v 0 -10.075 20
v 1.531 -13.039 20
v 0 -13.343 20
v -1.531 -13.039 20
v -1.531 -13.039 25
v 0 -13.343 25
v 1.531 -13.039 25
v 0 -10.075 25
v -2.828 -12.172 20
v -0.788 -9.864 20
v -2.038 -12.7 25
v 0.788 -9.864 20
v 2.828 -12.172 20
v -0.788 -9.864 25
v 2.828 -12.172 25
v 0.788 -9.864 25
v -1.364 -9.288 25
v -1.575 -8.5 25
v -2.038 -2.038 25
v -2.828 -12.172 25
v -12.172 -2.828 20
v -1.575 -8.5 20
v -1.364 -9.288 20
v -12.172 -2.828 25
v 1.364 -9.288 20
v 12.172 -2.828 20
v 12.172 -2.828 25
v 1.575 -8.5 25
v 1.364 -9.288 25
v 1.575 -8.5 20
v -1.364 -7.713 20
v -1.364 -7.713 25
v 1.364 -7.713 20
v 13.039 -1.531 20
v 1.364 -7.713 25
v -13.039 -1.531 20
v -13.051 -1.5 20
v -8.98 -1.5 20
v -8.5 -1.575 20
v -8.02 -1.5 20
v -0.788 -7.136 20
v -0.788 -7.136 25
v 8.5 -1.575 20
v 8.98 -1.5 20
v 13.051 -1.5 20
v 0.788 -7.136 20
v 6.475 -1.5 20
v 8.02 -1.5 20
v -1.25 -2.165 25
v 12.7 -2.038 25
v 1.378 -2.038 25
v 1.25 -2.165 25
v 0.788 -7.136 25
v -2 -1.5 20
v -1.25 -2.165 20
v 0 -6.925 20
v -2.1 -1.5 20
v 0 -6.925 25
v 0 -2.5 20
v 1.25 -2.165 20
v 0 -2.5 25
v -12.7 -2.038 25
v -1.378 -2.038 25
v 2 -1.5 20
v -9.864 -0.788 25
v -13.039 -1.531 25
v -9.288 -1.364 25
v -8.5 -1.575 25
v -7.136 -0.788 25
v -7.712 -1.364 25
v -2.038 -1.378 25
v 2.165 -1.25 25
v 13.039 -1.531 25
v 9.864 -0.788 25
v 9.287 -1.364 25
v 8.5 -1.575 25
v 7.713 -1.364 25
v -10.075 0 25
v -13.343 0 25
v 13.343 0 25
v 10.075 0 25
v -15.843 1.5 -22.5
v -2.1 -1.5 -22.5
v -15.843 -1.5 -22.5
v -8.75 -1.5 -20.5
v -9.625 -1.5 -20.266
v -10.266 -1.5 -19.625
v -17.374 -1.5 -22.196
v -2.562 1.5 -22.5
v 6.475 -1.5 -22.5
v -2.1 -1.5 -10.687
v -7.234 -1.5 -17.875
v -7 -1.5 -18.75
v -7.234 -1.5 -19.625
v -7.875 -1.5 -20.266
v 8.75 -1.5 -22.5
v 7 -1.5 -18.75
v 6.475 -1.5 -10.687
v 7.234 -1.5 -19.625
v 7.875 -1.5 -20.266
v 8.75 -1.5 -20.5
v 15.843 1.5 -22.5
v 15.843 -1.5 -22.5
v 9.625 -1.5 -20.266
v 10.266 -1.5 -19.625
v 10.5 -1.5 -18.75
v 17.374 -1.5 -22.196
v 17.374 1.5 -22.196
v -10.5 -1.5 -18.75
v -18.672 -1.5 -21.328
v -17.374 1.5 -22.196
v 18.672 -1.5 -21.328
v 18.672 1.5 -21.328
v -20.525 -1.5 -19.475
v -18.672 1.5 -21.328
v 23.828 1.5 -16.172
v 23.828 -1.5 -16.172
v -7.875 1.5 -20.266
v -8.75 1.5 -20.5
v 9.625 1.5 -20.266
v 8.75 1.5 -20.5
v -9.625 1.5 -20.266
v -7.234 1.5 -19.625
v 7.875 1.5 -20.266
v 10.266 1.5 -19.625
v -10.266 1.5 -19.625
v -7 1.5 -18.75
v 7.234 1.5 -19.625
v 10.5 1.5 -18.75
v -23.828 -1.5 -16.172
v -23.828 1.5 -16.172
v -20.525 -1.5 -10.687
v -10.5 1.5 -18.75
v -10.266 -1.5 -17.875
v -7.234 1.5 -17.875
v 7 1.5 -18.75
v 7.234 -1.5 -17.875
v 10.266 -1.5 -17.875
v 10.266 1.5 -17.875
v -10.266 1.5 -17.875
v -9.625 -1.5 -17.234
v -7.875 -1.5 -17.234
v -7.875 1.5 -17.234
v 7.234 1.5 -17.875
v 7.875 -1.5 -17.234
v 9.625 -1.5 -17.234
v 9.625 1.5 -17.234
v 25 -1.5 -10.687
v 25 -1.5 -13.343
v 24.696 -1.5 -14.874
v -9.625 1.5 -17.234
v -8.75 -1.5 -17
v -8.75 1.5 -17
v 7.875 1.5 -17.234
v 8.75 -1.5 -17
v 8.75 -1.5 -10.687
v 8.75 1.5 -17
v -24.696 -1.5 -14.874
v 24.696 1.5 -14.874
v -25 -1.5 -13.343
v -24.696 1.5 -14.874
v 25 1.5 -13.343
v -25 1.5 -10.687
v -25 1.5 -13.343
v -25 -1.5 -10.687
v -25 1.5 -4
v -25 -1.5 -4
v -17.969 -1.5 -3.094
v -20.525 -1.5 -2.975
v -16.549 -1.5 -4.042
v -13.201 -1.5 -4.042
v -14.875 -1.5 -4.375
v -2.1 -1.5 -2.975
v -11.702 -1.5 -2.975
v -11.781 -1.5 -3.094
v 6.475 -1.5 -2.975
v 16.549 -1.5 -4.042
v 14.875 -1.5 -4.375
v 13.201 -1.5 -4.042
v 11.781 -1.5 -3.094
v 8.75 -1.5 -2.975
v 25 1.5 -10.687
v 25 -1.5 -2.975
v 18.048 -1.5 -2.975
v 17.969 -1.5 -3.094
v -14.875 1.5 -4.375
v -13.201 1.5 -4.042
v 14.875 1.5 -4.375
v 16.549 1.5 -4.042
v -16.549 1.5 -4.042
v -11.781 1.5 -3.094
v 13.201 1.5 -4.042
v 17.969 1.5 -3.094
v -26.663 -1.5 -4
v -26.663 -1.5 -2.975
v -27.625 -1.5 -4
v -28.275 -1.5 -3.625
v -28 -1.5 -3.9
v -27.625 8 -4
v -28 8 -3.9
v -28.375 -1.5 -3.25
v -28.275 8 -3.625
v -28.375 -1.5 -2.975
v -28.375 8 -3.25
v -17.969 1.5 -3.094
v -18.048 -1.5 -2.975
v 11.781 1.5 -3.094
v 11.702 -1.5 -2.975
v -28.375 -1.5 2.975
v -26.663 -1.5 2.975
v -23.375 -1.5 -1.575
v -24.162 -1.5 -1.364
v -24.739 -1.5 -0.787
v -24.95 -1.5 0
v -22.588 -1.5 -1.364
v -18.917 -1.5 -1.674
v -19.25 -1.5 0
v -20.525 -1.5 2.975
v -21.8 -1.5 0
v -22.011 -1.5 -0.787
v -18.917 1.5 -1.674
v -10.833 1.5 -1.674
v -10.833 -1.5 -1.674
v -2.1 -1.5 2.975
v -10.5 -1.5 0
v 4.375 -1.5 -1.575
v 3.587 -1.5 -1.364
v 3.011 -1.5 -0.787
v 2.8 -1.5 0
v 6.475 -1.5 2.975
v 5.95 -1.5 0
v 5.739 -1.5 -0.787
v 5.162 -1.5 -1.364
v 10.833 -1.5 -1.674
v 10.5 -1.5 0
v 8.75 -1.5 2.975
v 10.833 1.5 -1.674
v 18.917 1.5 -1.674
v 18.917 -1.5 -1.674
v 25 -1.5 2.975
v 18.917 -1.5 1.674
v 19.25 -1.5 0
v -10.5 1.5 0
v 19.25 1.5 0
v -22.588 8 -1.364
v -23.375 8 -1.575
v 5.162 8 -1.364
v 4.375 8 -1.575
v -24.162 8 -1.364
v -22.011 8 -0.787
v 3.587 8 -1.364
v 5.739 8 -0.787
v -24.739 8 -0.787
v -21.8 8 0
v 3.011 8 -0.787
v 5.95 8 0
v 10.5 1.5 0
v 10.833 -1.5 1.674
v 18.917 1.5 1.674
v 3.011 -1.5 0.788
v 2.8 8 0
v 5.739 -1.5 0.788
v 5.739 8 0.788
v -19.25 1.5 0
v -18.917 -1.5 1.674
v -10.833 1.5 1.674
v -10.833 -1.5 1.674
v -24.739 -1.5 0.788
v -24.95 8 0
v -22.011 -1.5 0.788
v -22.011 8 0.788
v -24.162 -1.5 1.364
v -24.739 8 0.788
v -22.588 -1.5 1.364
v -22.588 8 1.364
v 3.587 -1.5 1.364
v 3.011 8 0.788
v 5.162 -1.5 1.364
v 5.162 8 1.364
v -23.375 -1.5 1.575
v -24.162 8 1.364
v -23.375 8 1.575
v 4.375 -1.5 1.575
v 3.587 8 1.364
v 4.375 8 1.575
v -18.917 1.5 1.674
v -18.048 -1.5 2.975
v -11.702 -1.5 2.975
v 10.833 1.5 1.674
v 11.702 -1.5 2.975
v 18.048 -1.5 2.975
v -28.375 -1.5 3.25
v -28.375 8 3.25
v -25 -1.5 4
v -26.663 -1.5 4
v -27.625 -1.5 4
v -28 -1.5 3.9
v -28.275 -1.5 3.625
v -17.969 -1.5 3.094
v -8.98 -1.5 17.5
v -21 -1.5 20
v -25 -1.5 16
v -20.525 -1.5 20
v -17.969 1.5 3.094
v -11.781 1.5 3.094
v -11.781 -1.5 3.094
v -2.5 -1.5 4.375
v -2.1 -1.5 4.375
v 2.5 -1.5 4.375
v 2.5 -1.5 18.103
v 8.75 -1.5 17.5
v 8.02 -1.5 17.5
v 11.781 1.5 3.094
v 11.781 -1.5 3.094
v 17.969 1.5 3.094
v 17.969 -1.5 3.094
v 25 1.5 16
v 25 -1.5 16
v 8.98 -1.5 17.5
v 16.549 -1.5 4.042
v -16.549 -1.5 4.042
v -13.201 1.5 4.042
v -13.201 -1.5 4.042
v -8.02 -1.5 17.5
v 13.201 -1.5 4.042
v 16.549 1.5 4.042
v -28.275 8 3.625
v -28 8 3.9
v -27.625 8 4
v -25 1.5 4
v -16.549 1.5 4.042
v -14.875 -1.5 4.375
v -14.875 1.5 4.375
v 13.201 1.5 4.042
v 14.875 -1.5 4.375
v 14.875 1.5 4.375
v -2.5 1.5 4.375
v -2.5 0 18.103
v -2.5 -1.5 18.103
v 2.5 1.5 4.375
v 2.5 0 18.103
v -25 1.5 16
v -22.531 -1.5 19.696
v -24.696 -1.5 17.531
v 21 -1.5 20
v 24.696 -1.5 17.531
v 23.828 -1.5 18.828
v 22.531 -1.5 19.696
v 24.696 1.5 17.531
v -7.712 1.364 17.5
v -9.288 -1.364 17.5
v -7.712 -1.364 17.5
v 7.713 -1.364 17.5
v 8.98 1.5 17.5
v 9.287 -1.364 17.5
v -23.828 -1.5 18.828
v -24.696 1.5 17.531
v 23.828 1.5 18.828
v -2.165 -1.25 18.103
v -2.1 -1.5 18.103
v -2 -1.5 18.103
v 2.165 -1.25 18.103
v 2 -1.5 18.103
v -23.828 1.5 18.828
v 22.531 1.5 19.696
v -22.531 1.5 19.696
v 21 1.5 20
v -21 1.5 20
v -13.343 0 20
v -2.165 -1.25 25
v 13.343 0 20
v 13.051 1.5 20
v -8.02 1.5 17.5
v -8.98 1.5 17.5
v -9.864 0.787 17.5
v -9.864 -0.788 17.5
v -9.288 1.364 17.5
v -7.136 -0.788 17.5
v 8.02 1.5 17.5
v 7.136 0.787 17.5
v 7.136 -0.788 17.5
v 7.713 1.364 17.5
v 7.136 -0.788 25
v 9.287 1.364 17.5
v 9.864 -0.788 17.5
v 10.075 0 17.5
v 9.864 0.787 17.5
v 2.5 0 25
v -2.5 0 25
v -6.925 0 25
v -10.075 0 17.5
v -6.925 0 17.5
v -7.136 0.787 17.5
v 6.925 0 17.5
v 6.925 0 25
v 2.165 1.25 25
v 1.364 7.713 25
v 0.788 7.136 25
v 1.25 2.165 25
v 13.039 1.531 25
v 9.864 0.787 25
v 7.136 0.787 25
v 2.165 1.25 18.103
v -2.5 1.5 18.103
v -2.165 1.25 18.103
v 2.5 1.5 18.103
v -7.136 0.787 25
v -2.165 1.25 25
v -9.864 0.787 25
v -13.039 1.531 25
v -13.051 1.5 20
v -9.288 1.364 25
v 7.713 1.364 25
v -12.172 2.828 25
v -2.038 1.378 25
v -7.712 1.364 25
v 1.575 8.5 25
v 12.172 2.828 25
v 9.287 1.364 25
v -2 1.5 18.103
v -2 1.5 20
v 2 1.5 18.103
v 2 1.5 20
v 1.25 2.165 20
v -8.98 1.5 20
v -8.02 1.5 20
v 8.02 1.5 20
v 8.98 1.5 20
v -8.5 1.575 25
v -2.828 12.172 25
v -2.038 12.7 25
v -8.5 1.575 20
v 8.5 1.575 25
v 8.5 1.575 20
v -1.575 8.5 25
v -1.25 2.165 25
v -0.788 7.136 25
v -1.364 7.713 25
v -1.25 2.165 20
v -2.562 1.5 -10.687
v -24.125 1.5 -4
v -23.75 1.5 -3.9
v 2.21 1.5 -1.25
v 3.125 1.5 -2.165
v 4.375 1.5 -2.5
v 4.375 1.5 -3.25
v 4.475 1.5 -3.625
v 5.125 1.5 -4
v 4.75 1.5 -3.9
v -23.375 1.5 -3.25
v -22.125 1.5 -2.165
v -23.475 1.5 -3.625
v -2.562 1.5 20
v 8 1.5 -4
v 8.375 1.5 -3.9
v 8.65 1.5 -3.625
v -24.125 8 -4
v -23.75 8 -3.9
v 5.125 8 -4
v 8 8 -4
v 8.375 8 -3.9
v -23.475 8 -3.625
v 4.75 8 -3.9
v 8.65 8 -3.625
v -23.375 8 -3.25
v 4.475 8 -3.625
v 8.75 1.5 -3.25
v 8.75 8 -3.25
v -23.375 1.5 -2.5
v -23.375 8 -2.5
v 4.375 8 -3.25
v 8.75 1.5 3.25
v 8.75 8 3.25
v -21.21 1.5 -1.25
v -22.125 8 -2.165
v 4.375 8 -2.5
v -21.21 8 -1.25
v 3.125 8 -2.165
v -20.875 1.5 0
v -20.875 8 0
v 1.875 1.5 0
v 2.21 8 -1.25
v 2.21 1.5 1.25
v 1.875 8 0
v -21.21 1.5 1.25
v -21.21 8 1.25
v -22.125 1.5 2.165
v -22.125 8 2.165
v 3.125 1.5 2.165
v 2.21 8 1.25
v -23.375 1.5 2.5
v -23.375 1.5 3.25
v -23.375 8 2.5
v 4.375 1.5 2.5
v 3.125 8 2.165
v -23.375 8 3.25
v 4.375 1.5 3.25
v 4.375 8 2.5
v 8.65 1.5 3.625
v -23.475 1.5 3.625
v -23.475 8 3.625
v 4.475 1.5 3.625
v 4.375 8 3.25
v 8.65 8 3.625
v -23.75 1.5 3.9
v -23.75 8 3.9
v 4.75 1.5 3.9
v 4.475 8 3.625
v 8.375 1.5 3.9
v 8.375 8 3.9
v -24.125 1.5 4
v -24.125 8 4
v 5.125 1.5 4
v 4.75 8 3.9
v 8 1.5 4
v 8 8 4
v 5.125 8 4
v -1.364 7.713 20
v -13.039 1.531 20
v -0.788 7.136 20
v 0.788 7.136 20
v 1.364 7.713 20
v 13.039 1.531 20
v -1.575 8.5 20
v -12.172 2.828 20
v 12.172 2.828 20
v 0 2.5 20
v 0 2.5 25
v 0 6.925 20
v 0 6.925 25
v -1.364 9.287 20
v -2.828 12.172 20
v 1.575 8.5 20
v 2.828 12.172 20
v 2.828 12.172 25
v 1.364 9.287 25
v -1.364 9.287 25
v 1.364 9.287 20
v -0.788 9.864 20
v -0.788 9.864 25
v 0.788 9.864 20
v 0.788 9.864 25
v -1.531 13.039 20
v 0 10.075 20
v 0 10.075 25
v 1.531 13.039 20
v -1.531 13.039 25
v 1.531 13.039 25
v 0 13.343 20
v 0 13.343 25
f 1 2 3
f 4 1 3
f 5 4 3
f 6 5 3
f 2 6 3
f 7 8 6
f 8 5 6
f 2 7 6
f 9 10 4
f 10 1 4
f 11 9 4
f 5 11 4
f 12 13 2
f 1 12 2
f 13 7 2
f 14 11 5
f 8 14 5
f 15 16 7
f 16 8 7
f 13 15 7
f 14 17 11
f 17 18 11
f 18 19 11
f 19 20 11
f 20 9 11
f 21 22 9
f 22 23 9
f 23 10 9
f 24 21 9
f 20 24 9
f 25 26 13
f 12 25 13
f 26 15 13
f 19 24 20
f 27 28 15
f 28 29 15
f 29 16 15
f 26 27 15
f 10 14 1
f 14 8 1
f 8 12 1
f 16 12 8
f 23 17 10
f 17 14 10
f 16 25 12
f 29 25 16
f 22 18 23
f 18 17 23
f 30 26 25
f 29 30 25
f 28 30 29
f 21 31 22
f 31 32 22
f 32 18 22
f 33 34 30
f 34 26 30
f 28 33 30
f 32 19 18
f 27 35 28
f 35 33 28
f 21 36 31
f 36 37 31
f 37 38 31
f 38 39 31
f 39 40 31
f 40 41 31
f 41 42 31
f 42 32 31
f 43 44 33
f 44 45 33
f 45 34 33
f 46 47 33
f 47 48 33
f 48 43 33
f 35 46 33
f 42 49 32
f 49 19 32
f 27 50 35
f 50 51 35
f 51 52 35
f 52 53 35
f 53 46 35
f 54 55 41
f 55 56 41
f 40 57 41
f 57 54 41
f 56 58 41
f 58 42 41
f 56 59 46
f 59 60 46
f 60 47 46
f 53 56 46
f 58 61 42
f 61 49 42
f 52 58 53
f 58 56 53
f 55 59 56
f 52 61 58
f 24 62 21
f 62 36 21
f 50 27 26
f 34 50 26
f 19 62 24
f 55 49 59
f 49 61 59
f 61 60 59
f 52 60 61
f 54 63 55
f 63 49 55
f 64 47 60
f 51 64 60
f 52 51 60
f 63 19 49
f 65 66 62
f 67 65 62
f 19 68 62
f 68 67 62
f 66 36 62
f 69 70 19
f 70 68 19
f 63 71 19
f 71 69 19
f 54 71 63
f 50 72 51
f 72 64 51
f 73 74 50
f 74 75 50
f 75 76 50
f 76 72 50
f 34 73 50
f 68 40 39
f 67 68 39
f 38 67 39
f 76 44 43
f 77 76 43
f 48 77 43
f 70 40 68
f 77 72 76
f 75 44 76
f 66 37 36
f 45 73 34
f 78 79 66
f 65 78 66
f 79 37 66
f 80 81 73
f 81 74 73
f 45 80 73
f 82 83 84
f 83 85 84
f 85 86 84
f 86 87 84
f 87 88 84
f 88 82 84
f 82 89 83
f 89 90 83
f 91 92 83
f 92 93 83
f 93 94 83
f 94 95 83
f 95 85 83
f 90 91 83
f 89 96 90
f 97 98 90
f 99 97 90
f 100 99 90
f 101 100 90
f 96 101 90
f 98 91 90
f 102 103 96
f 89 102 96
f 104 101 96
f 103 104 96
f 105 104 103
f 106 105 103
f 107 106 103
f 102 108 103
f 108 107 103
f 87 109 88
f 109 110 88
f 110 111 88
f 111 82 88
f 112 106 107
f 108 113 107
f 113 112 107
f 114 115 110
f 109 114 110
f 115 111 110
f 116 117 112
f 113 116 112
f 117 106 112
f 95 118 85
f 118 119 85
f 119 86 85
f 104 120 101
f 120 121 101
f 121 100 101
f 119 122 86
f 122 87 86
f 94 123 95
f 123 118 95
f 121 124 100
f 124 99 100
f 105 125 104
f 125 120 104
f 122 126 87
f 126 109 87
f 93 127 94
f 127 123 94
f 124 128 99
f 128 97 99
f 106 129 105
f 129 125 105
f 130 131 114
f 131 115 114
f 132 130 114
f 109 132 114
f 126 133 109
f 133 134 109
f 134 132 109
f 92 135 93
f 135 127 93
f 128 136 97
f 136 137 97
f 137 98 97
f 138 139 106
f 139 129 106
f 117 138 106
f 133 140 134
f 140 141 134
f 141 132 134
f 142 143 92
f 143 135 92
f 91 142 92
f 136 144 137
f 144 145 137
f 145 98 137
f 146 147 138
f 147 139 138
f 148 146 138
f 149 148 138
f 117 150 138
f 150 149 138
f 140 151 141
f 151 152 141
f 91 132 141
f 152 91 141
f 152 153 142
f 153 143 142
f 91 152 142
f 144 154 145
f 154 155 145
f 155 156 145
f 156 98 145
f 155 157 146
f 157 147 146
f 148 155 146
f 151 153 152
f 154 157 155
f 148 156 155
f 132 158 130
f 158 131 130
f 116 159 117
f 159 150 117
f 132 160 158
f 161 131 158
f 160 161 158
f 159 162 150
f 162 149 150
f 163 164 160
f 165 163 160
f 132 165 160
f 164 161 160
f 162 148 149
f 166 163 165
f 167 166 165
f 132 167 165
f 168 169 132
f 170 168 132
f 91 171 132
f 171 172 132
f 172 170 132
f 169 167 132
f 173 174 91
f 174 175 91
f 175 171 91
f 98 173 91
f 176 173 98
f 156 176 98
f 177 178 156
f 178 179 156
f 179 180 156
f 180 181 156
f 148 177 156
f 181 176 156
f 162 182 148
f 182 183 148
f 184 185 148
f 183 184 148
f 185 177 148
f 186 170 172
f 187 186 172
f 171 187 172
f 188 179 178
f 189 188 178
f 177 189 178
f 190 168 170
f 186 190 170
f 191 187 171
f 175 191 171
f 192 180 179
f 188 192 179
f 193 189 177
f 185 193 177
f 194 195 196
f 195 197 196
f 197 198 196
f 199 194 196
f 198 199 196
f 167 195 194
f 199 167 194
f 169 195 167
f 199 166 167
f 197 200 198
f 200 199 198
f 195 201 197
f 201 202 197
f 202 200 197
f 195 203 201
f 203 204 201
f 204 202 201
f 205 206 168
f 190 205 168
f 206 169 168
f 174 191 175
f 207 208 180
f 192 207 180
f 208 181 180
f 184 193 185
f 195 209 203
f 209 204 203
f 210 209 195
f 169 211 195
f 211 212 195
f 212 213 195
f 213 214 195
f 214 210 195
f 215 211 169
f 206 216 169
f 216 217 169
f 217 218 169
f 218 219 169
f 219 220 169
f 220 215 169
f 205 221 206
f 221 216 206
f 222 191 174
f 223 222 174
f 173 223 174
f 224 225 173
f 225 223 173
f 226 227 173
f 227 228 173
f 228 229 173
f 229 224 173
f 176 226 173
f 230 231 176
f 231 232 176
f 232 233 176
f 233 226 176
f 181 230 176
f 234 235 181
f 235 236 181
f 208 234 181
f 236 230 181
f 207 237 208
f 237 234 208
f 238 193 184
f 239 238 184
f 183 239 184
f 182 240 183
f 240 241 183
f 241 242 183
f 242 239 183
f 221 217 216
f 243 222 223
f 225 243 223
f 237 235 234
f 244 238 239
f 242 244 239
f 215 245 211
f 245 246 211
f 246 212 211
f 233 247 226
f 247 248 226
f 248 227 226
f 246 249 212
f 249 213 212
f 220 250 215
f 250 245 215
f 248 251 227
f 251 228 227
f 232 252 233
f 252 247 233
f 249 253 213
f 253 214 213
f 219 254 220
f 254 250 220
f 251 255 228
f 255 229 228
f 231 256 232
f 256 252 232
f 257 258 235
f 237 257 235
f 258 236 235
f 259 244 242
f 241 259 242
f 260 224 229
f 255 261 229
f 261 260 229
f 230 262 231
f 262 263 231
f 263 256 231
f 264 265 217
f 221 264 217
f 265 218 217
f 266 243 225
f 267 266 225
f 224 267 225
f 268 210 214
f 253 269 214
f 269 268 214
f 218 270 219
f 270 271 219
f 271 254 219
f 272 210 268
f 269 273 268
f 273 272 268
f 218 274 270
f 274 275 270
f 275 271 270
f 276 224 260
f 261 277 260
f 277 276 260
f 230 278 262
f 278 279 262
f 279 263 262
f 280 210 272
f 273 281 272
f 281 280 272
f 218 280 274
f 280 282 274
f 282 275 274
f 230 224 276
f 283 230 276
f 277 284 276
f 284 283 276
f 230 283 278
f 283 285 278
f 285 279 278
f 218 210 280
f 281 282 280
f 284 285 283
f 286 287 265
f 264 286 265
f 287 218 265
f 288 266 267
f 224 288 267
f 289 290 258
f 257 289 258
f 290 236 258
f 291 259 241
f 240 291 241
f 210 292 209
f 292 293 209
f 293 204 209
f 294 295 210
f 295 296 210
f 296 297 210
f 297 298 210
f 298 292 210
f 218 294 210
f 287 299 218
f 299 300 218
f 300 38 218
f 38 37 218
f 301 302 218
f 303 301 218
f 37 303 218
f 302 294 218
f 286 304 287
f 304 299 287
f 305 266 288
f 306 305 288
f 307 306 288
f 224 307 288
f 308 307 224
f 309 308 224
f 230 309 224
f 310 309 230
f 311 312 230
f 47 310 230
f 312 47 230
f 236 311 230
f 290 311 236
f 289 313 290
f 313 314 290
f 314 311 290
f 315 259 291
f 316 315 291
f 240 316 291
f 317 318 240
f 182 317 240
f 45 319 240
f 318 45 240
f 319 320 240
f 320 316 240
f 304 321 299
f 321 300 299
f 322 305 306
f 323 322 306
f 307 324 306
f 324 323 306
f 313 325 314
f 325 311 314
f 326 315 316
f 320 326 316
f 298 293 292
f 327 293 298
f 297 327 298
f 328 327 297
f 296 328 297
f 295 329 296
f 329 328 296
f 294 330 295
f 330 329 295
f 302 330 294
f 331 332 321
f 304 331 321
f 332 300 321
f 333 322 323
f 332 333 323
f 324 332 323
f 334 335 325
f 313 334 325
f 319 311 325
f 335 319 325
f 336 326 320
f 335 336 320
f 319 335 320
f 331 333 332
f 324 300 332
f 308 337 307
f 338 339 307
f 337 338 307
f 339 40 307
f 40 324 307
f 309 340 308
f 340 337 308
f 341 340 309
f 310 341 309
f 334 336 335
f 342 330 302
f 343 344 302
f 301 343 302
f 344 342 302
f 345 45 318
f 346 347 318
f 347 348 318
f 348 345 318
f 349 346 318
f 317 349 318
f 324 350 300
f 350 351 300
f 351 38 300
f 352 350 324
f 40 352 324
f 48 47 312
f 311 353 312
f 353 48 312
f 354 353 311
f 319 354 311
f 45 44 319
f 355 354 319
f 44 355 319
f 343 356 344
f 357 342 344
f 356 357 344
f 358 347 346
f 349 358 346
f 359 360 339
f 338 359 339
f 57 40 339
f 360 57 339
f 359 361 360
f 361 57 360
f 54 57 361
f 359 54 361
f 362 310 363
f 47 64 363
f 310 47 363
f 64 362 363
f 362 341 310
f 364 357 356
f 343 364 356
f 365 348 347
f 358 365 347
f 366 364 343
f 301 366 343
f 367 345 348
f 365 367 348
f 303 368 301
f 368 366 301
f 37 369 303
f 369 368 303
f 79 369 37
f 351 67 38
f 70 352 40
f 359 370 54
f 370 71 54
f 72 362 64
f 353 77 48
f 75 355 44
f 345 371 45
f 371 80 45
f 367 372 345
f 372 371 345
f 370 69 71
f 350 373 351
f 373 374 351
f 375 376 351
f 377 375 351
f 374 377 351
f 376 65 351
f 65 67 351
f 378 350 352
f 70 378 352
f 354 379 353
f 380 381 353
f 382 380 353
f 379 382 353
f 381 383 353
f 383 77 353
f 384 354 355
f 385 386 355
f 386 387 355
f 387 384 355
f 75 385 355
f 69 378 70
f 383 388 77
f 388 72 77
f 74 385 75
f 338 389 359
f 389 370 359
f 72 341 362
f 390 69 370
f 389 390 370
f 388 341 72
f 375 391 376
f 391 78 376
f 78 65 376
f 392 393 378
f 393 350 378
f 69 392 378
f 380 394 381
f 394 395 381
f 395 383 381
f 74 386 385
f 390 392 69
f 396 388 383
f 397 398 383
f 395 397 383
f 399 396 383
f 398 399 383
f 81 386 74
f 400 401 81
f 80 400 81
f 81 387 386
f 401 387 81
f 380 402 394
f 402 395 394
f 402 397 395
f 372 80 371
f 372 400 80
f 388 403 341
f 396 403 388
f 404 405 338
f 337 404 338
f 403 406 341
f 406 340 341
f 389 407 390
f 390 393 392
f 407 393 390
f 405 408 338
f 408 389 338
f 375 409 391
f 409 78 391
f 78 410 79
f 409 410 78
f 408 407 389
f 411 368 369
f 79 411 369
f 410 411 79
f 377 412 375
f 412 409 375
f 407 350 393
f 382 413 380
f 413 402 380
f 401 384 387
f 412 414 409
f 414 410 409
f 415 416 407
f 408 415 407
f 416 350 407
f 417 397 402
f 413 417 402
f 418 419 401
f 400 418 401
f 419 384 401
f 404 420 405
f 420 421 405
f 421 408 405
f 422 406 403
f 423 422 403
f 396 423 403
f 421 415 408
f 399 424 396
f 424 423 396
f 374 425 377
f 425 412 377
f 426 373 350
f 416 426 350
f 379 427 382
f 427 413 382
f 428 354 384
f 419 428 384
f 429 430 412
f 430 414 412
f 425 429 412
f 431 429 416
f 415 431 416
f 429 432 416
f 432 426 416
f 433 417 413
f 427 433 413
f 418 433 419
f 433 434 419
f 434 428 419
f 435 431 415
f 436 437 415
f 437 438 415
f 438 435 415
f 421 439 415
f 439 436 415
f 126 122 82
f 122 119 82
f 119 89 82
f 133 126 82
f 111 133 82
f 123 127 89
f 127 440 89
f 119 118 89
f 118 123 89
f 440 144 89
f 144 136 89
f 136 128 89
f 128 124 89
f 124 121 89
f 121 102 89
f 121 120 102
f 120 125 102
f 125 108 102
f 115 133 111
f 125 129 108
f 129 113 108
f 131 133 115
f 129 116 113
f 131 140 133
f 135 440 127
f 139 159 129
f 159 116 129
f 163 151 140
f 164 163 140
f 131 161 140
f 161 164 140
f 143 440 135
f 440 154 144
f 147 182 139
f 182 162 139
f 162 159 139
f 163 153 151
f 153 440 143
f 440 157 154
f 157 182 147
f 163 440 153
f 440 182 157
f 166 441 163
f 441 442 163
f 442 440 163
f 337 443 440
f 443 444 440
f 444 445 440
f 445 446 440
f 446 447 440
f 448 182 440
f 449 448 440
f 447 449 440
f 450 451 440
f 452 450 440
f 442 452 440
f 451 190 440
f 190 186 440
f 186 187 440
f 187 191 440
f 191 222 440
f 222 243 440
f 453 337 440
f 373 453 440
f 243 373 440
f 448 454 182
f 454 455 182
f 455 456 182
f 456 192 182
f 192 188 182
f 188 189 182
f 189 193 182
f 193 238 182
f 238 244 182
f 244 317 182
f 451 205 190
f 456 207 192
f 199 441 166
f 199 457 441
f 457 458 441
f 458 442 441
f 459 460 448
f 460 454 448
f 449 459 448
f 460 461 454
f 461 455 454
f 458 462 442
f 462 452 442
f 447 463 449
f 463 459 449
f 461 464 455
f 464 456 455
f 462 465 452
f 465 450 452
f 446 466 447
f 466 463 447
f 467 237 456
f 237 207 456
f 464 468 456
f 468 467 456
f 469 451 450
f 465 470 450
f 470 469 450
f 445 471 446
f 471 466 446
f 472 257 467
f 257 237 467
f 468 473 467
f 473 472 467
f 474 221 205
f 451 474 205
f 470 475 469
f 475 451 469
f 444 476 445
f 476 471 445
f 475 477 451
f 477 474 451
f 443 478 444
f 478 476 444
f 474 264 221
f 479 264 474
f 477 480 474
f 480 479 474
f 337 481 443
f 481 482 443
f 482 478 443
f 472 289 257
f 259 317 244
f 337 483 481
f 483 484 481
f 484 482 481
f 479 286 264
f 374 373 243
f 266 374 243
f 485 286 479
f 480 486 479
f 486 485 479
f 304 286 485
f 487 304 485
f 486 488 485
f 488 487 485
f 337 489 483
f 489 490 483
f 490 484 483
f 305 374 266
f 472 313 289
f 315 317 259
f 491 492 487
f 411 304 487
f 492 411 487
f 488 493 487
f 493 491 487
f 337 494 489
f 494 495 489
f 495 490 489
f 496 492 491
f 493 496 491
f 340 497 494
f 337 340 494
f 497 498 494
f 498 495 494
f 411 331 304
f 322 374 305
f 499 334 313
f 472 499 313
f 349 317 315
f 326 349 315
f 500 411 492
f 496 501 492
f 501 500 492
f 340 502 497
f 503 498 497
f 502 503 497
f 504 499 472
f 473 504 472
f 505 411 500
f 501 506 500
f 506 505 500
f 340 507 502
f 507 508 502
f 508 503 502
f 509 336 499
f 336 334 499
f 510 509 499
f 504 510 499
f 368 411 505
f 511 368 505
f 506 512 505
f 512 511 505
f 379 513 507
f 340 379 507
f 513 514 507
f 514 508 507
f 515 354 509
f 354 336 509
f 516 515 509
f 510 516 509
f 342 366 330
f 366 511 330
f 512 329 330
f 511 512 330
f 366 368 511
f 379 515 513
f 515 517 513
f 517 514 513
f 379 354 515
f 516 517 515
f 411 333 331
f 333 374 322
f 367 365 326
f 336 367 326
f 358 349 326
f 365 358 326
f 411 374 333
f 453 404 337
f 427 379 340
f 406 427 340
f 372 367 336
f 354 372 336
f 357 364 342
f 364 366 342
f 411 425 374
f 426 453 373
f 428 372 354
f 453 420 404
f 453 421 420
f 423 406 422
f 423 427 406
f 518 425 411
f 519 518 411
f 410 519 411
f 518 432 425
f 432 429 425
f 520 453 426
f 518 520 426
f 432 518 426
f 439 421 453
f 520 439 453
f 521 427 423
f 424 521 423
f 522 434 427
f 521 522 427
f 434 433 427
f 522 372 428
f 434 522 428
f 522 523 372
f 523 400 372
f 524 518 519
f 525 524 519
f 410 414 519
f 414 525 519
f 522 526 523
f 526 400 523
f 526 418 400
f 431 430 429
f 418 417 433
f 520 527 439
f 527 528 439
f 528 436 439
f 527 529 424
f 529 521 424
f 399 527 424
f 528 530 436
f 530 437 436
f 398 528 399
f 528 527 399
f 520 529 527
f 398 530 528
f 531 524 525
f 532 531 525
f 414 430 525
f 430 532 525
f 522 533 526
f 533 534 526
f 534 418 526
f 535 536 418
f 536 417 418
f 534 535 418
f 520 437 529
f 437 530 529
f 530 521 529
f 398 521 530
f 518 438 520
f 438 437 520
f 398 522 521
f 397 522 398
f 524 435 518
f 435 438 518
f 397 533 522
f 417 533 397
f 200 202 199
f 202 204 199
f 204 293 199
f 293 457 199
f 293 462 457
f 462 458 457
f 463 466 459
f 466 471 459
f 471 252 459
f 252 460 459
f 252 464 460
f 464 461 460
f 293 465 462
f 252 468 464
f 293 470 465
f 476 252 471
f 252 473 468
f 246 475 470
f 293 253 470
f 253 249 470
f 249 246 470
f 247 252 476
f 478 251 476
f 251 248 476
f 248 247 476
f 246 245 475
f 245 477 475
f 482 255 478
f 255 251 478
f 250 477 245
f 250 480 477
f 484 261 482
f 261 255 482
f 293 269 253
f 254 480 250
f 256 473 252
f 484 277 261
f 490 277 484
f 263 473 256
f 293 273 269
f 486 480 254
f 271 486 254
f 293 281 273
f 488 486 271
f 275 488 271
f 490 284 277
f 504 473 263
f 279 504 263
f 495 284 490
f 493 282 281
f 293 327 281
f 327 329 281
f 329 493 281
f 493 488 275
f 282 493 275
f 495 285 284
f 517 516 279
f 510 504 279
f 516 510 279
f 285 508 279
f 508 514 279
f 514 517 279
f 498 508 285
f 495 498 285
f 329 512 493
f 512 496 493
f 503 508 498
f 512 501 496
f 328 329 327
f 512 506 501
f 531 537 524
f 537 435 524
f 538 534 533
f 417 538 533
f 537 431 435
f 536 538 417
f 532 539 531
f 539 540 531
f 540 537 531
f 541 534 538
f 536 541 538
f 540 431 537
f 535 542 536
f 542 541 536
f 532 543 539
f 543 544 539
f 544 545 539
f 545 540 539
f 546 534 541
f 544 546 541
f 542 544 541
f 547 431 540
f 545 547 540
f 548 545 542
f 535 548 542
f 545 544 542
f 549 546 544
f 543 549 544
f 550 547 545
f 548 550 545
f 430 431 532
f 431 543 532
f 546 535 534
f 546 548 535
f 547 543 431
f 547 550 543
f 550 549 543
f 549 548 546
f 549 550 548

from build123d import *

# Parameters (mm, degrees)
BOSS_EXTRUDE1_DEPTH      = 1.5
BOSS_EXTRUDE1_DEPTH_BACK = 1.5
SKETCH1_W                = 5
SKETCH1_H                = 13.727853371
SKETCH1_R                = 4.375
SKETCH1_R_2              = 1.75
BOSS_EXTRUDE2_DEPTH      = 15
BOSS_EXTRUDE2_DEPTH_BACK = 15
SKETCH2_R                = 1.575
SKETCH2_R_2              = 2.5
CUT_EXTRUDE1_DEPTH       = 7.5
CUT_EXTRUDE2_DEPTH       = 5
BOSS_EXTRUDE3_DEPTH      = 8
BOSS_EXTRUDE3_DEPTH_BACK = 1.5
SKETCH1_4_R              = 1.575
FILLET1_R                = 4
FILLET2_R                = 0.75


with BuildPart() as part:
    # Sketch1 → Boss-Extrude1 (new, two sides: drawn at the far end of the back side and taken through both)
    with BuildSketch(Plane(origin=(0, 0, 0), x_dir=(1, 0, 0), z_dir=(0, 1, 0)).offset(-BOSS_EXTRUDE1_DEPTH_BACK)):
        with BuildLine():
            ThreePointArc((-23.375, 2.5), (-21.607233047, 1.767766953), (-20.875, 0))
            ThreePointArc((-20.875, 0), (-21.607233047, -1.767766953), (-23.375, -2.5))
            Line((-23.375, -2.5), (-23.375, -4))
            Line((-23.375, -4), (-25, -4))
            Line((-25, -4), (-25, -20))
            Line((-25, -20), (25, -20))
            Line((25, -20), (25, 15))
            Line((25, 15), (17.5, 22.5))
            Line((17.5, 22.5), (-17.5, 22.5))
            Line((-17.5, 22.5), (-25, 15))
            Line((-25, 15), (-25, 4))
            Line((-25, 4), (-23.375, 4))
            Line((-23.375, 4), (-23.375, 2.5))
        make_face()
        with Locations((0, -11.238926686)):
            Rectangle(SKETCH1_W, SKETCH1_H, mode=Mode.SUBTRACT)
        with BuildLine():
            ThreePointArc((-10.5, 0), (-14.875, -4.375), (-19.25, 0))
            ThreePointArc((-19.25, 0), (-17.968592168, 3.093592168), (-14.875, 4.375))
            ThreePointArc((-14.875, 4.375), (-11.781407832, 3.093592168), (-10.5, 0))
        make_face(mode=Mode.SUBTRACT)
        with BuildLine():
            ThreePointArc((4.375, -2.5), (2.607233047, -1.767766953), (1.875, 0))
            ThreePointArc((1.875, 0), (2.607233047, 1.767766953), (4.375, 2.5))
            Line((4.375, 2.5), (4.375, 4))
            Line((4.375, 4), (8.75, 4))
            Line((8.75, 4), (8.75, 0))
            Line((8.75, 0), (8.75, -4))
            Line((8.75, -4), (4.375, -4))
            Line((4.375, -4), (4.375, -2.5))
        make_face(mode=Mode.SUBTRACT)
        with Locations(Location((14.875, 0, 0), (0, 0, 270))):
            Circle(SKETCH1_R, mode=Mode.SUBTRACT)
        with Locations(Location((-8.75, 18.75, 0), (0, 0, 270))):
            Circle(SKETCH1_R_2, mode=Mode.SUBTRACT)
        with Locations(Location((8.75, 18.75, 0), (0, 0, 270))):
            Circle(SKETCH1_R_2, mode=Mode.SUBTRACT)
    extrude(amount=BOSS_EXTRUDE1_DEPTH + BOSS_EXTRUDE1_DEPTH_BACK)

    # Sketch1<3> → Boss-Extrude2 (add, two sides: drawn at the far end of the back side and taken through both)
    with BuildSketch(Plane(origin=(0, 0, 0), x_dir=(1, 0, 0), z_dir=(0, 1, 0)).offset(-BOSS_EXTRUDE2_DEPTH_BACK)):
        Polygon((0, -20), (-25, -20), (-25, -25), (25, -25), (25, -20), align=None)
    extrude(amount=BOSS_EXTRUDE2_DEPTH + BOSS_EXTRUDE2_DEPTH_BACK)

    # Sketch2 → Cut-Extrude1 (cut)
    with BuildSketch(Plane.XY.offset(25)):
        with Locations((-8.5, 0)):
            Circle(SKETCH2_R)
        Circle(SKETCH2_R_2)
        with Locations((0, 8.5)):
            Circle(SKETCH2_R)
        with Locations((8.5, 0)):
            Circle(SKETCH2_R)
        with Locations((0, -8.5)):
            Circle(SKETCH2_R)
    extrude(amount=-CUT_EXTRUDE1_DEPTH, mode=Mode.SUBTRACT)

    # Sketch2<3> → Cut-Extrude2 (cut)
    with BuildSketch(Plane.XY.offset(25)):
        Polygon((-25, 0), (-15, 0), (0, 15), (-25, 15), align=None)
        Polygon((25, 15), (0, 15), (15, 0), (0, -15), (25, -15), align=None)
        Polygon((0, -15), (-15, 0), (-25, 0), (-25, -15), align=None)
    extrude(amount=-CUT_EXTRUDE2_DEPTH, mode=Mode.SUBTRACT)

    # Sketch1<4> → Boss-Extrude3 (add, two sides: drawn at the far end of the back side and taken through both)
    # profile 1 of 2: a face of its own
    with BuildSketch(Plane(origin=(0, 0, 0), x_dir=(1, 0, 0), z_dir=(0, 1, 0)).offset(-BOSS_EXTRUDE3_DEPTH_BACK)):
        with BuildLine():
            ThreePointArc((4.375, 2.5), (1.875, 0), (4.375, -2.5))
            Line((4.375, -2.5), (4.375, -4))
            Line((4.375, -4), (8.75, -4))
            Line((8.75, -4), (8.75, 4))
            Line((8.75, 4), (4.375, 4))
            Line((4.375, 4), (4.375, 2.5))
        make_face()
        with Locations(Location((4.375, 0, 0), (0, 0, 270))):
            Circle(SKETCH1_4_R, mode=Mode.SUBTRACT)
    # profile 2 of 2: a face of its own
    with BuildSketch(Plane(origin=(0, 0, 0), x_dir=(1, 0, 0), z_dir=(0, 1, 0)).offset(-BOSS_EXTRUDE3_DEPTH_BACK)):
        with BuildLine():
            ThreePointArc((-23.375, -2.5), (-20.875, 0), (-23.375, 2.5))
            Line((-23.375, 2.5), (-23.375, 4))
            Line((-23.375, 4), (-28.375, 4))
            Line((-28.375, 4), (-28.375, -4))
            Line((-28.375, -4), (-23.375, -4))
            Line((-23.375, -4), (-23.375, -2.5))
        make_face()
        with Locations(Location((-23.375, 0, 0), (0, 0, 270))):
            Circle(SKETCH1_4_R, mode=Mode.SUBTRACT)
    extrude(amount=BOSS_EXTRUDE3_DEPTH + BOSS_EXTRUDE3_DEPTH_BACK)

    # Fillet1
    # the kernel refuses this fillet: 4 mm, written as the material it takes off along each edge
    with BuildSketch(Plane(origin=(15, 0, 35), x_dir=(-0.7071067811865535, -0.7071067811865416, 0), z_dir=(0, 0, -1))) as fillet1_piece_1:
        with BuildLine():
            CenterArc((FILLET1_R, FILLET1_R), FILLET1_R, 180, 90)
            Line((0, FILLET1_R), (0, 0))
            Line((0, 0), (FILLET1_R, 0))
        make_face()
    extrude(amount=15, mode=Mode.SUBTRACT)
    with BuildSketch(Plane(origin=(0, 15, 35), x_dir=(0.7071067811865505, -0.7071067811865446, 0), z_dir=(0, 0, -1))) as fillet1_piece_2:
        with BuildLine():
            CenterArc((FILLET1_R, FILLET1_R), FILLET1_R, 180, 90)
            Line((0, FILLET1_R), (0, 0))
            Line((0, 0), (FILLET1_R, 0))
        make_face()
    extrude(amount=25, mode=Mode.SUBTRACT)
    with BuildSketch(Plane(origin=(25, -11.5, 20), x_dir=(0, 0, -1), z_dir=(0, 1, 0)), Plane(origin=(-25, -11.5, 20), x_dir=(1, 0, 0), z_dir=(0, 1, 0))) as fillet1_piece_3:
        with BuildLine():
            CenterArc((FILLET1_R, FILLET1_R), FILLET1_R, 180, 90)
            Line((0, FILLET1_R), (0, 0))
            Line((0, 0), (FILLET1_R, 0))
        make_face()
    extrude(amount=23, mode=Mode.SUBTRACT)
    with BuildSketch(Plane(origin=(0, -15, 35), x_dir=(0.7071067811865533, 0.7071067811865418, 0), z_dir=(0, 0, -1))) as fillet1_piece_4:
        with BuildLine():
            CenterArc((FILLET1_R, -FILLET1_R), FILLET1_R, 90, 90)
            Line((0, -FILLET1_R), (0, 0))
            Line((0, 0), (FILLET1_R, 0))
        make_face()
    extrude(amount=25, mode=Mode.SUBTRACT)
    with BuildSketch(Plane(origin=(-15, 0, 35), x_dir=(0.7071067811865416, -0.7071067811865536, 0), z_dir=(0, 0, -1))) as fillet1_piece_5:
        with BuildLine():
            CenterArc((FILLET1_R, -FILLET1_R), FILLET1_R, 90, 90)
            Line((0, -FILLET1_R), (0, 0))
            Line((0, 0), (FILLET1_R, 0))
        make_face()
    extrude(amount=15, mode=Mode.SUBTRACT)
    with BuildSketch(Plane(origin=(-25, -5.642135624, -15), x_dir=(0, 0, 1), z_dir=(0, 1, 0)), Plane(origin=(-17.5, -5.642135624, -22.5), x_dir=(-0.7071067811865465, 0, 0.7071067811865487), z_dir=(0, 1, 0)), Plane(origin=(25, 5.642135624, -15), x_dir=(0, 0, 1), z_dir=(0, -1, 0))) as fillet1_piece_6:
        with BuildLine():
            CenterArc((FILLET1_R * 0.414213562373, FILLET1_R), FILLET1_R, 225, 45)
            Line((-FILLET1_R * 0.292893218813, FILLET1_R * 0.292893218813), (0, 0))
            Line((0, 0), (FILLET1_R * 0.414213562373, 0))
        make_face()
    extrude(amount=11.284271247, mode=Mode.SUBTRACT)
    with BuildSketch(Plane(origin=(17.5, -5.642135624, -22.5), x_dir=(0.7071067811865454, 0, 0.7071067811865497), z_dir=(0, 1, 0))) as fillet1_piece_7:
        with BuildLine():
            CenterArc((FILLET1_R * 0.414213562373, -FILLET1_R), FILLET1_R, 90, 45)
            Line((-FILLET1_R * 0.292893218813, -FILLET1_R * 0.292893218813), (0, 0))
            Line((0, 0), (FILLET1_R * 0.414213562373, 0))
        make_face()
    extrude(amount=11.284271247, mode=Mode.SUBTRACT)

    # Fillet2
    fillet2_edges = [part.edges().sort_by_distance(p)[0] for p in [
        (8.75, 4.75, -4),
        (8.75, 4.75, 4),
        (4.375, 4.75, 4),
        (4.375, 4.75, -4),
        (-28.375, 3.25, 4),
        (-28.375, 3.25, -4),
        (-23.375, 4.75, -4),
        (-23.375, 4.75, 4),
    ]]
    fillet(fillet2_edges, radius=FILLET2_R)


solid = part.part
